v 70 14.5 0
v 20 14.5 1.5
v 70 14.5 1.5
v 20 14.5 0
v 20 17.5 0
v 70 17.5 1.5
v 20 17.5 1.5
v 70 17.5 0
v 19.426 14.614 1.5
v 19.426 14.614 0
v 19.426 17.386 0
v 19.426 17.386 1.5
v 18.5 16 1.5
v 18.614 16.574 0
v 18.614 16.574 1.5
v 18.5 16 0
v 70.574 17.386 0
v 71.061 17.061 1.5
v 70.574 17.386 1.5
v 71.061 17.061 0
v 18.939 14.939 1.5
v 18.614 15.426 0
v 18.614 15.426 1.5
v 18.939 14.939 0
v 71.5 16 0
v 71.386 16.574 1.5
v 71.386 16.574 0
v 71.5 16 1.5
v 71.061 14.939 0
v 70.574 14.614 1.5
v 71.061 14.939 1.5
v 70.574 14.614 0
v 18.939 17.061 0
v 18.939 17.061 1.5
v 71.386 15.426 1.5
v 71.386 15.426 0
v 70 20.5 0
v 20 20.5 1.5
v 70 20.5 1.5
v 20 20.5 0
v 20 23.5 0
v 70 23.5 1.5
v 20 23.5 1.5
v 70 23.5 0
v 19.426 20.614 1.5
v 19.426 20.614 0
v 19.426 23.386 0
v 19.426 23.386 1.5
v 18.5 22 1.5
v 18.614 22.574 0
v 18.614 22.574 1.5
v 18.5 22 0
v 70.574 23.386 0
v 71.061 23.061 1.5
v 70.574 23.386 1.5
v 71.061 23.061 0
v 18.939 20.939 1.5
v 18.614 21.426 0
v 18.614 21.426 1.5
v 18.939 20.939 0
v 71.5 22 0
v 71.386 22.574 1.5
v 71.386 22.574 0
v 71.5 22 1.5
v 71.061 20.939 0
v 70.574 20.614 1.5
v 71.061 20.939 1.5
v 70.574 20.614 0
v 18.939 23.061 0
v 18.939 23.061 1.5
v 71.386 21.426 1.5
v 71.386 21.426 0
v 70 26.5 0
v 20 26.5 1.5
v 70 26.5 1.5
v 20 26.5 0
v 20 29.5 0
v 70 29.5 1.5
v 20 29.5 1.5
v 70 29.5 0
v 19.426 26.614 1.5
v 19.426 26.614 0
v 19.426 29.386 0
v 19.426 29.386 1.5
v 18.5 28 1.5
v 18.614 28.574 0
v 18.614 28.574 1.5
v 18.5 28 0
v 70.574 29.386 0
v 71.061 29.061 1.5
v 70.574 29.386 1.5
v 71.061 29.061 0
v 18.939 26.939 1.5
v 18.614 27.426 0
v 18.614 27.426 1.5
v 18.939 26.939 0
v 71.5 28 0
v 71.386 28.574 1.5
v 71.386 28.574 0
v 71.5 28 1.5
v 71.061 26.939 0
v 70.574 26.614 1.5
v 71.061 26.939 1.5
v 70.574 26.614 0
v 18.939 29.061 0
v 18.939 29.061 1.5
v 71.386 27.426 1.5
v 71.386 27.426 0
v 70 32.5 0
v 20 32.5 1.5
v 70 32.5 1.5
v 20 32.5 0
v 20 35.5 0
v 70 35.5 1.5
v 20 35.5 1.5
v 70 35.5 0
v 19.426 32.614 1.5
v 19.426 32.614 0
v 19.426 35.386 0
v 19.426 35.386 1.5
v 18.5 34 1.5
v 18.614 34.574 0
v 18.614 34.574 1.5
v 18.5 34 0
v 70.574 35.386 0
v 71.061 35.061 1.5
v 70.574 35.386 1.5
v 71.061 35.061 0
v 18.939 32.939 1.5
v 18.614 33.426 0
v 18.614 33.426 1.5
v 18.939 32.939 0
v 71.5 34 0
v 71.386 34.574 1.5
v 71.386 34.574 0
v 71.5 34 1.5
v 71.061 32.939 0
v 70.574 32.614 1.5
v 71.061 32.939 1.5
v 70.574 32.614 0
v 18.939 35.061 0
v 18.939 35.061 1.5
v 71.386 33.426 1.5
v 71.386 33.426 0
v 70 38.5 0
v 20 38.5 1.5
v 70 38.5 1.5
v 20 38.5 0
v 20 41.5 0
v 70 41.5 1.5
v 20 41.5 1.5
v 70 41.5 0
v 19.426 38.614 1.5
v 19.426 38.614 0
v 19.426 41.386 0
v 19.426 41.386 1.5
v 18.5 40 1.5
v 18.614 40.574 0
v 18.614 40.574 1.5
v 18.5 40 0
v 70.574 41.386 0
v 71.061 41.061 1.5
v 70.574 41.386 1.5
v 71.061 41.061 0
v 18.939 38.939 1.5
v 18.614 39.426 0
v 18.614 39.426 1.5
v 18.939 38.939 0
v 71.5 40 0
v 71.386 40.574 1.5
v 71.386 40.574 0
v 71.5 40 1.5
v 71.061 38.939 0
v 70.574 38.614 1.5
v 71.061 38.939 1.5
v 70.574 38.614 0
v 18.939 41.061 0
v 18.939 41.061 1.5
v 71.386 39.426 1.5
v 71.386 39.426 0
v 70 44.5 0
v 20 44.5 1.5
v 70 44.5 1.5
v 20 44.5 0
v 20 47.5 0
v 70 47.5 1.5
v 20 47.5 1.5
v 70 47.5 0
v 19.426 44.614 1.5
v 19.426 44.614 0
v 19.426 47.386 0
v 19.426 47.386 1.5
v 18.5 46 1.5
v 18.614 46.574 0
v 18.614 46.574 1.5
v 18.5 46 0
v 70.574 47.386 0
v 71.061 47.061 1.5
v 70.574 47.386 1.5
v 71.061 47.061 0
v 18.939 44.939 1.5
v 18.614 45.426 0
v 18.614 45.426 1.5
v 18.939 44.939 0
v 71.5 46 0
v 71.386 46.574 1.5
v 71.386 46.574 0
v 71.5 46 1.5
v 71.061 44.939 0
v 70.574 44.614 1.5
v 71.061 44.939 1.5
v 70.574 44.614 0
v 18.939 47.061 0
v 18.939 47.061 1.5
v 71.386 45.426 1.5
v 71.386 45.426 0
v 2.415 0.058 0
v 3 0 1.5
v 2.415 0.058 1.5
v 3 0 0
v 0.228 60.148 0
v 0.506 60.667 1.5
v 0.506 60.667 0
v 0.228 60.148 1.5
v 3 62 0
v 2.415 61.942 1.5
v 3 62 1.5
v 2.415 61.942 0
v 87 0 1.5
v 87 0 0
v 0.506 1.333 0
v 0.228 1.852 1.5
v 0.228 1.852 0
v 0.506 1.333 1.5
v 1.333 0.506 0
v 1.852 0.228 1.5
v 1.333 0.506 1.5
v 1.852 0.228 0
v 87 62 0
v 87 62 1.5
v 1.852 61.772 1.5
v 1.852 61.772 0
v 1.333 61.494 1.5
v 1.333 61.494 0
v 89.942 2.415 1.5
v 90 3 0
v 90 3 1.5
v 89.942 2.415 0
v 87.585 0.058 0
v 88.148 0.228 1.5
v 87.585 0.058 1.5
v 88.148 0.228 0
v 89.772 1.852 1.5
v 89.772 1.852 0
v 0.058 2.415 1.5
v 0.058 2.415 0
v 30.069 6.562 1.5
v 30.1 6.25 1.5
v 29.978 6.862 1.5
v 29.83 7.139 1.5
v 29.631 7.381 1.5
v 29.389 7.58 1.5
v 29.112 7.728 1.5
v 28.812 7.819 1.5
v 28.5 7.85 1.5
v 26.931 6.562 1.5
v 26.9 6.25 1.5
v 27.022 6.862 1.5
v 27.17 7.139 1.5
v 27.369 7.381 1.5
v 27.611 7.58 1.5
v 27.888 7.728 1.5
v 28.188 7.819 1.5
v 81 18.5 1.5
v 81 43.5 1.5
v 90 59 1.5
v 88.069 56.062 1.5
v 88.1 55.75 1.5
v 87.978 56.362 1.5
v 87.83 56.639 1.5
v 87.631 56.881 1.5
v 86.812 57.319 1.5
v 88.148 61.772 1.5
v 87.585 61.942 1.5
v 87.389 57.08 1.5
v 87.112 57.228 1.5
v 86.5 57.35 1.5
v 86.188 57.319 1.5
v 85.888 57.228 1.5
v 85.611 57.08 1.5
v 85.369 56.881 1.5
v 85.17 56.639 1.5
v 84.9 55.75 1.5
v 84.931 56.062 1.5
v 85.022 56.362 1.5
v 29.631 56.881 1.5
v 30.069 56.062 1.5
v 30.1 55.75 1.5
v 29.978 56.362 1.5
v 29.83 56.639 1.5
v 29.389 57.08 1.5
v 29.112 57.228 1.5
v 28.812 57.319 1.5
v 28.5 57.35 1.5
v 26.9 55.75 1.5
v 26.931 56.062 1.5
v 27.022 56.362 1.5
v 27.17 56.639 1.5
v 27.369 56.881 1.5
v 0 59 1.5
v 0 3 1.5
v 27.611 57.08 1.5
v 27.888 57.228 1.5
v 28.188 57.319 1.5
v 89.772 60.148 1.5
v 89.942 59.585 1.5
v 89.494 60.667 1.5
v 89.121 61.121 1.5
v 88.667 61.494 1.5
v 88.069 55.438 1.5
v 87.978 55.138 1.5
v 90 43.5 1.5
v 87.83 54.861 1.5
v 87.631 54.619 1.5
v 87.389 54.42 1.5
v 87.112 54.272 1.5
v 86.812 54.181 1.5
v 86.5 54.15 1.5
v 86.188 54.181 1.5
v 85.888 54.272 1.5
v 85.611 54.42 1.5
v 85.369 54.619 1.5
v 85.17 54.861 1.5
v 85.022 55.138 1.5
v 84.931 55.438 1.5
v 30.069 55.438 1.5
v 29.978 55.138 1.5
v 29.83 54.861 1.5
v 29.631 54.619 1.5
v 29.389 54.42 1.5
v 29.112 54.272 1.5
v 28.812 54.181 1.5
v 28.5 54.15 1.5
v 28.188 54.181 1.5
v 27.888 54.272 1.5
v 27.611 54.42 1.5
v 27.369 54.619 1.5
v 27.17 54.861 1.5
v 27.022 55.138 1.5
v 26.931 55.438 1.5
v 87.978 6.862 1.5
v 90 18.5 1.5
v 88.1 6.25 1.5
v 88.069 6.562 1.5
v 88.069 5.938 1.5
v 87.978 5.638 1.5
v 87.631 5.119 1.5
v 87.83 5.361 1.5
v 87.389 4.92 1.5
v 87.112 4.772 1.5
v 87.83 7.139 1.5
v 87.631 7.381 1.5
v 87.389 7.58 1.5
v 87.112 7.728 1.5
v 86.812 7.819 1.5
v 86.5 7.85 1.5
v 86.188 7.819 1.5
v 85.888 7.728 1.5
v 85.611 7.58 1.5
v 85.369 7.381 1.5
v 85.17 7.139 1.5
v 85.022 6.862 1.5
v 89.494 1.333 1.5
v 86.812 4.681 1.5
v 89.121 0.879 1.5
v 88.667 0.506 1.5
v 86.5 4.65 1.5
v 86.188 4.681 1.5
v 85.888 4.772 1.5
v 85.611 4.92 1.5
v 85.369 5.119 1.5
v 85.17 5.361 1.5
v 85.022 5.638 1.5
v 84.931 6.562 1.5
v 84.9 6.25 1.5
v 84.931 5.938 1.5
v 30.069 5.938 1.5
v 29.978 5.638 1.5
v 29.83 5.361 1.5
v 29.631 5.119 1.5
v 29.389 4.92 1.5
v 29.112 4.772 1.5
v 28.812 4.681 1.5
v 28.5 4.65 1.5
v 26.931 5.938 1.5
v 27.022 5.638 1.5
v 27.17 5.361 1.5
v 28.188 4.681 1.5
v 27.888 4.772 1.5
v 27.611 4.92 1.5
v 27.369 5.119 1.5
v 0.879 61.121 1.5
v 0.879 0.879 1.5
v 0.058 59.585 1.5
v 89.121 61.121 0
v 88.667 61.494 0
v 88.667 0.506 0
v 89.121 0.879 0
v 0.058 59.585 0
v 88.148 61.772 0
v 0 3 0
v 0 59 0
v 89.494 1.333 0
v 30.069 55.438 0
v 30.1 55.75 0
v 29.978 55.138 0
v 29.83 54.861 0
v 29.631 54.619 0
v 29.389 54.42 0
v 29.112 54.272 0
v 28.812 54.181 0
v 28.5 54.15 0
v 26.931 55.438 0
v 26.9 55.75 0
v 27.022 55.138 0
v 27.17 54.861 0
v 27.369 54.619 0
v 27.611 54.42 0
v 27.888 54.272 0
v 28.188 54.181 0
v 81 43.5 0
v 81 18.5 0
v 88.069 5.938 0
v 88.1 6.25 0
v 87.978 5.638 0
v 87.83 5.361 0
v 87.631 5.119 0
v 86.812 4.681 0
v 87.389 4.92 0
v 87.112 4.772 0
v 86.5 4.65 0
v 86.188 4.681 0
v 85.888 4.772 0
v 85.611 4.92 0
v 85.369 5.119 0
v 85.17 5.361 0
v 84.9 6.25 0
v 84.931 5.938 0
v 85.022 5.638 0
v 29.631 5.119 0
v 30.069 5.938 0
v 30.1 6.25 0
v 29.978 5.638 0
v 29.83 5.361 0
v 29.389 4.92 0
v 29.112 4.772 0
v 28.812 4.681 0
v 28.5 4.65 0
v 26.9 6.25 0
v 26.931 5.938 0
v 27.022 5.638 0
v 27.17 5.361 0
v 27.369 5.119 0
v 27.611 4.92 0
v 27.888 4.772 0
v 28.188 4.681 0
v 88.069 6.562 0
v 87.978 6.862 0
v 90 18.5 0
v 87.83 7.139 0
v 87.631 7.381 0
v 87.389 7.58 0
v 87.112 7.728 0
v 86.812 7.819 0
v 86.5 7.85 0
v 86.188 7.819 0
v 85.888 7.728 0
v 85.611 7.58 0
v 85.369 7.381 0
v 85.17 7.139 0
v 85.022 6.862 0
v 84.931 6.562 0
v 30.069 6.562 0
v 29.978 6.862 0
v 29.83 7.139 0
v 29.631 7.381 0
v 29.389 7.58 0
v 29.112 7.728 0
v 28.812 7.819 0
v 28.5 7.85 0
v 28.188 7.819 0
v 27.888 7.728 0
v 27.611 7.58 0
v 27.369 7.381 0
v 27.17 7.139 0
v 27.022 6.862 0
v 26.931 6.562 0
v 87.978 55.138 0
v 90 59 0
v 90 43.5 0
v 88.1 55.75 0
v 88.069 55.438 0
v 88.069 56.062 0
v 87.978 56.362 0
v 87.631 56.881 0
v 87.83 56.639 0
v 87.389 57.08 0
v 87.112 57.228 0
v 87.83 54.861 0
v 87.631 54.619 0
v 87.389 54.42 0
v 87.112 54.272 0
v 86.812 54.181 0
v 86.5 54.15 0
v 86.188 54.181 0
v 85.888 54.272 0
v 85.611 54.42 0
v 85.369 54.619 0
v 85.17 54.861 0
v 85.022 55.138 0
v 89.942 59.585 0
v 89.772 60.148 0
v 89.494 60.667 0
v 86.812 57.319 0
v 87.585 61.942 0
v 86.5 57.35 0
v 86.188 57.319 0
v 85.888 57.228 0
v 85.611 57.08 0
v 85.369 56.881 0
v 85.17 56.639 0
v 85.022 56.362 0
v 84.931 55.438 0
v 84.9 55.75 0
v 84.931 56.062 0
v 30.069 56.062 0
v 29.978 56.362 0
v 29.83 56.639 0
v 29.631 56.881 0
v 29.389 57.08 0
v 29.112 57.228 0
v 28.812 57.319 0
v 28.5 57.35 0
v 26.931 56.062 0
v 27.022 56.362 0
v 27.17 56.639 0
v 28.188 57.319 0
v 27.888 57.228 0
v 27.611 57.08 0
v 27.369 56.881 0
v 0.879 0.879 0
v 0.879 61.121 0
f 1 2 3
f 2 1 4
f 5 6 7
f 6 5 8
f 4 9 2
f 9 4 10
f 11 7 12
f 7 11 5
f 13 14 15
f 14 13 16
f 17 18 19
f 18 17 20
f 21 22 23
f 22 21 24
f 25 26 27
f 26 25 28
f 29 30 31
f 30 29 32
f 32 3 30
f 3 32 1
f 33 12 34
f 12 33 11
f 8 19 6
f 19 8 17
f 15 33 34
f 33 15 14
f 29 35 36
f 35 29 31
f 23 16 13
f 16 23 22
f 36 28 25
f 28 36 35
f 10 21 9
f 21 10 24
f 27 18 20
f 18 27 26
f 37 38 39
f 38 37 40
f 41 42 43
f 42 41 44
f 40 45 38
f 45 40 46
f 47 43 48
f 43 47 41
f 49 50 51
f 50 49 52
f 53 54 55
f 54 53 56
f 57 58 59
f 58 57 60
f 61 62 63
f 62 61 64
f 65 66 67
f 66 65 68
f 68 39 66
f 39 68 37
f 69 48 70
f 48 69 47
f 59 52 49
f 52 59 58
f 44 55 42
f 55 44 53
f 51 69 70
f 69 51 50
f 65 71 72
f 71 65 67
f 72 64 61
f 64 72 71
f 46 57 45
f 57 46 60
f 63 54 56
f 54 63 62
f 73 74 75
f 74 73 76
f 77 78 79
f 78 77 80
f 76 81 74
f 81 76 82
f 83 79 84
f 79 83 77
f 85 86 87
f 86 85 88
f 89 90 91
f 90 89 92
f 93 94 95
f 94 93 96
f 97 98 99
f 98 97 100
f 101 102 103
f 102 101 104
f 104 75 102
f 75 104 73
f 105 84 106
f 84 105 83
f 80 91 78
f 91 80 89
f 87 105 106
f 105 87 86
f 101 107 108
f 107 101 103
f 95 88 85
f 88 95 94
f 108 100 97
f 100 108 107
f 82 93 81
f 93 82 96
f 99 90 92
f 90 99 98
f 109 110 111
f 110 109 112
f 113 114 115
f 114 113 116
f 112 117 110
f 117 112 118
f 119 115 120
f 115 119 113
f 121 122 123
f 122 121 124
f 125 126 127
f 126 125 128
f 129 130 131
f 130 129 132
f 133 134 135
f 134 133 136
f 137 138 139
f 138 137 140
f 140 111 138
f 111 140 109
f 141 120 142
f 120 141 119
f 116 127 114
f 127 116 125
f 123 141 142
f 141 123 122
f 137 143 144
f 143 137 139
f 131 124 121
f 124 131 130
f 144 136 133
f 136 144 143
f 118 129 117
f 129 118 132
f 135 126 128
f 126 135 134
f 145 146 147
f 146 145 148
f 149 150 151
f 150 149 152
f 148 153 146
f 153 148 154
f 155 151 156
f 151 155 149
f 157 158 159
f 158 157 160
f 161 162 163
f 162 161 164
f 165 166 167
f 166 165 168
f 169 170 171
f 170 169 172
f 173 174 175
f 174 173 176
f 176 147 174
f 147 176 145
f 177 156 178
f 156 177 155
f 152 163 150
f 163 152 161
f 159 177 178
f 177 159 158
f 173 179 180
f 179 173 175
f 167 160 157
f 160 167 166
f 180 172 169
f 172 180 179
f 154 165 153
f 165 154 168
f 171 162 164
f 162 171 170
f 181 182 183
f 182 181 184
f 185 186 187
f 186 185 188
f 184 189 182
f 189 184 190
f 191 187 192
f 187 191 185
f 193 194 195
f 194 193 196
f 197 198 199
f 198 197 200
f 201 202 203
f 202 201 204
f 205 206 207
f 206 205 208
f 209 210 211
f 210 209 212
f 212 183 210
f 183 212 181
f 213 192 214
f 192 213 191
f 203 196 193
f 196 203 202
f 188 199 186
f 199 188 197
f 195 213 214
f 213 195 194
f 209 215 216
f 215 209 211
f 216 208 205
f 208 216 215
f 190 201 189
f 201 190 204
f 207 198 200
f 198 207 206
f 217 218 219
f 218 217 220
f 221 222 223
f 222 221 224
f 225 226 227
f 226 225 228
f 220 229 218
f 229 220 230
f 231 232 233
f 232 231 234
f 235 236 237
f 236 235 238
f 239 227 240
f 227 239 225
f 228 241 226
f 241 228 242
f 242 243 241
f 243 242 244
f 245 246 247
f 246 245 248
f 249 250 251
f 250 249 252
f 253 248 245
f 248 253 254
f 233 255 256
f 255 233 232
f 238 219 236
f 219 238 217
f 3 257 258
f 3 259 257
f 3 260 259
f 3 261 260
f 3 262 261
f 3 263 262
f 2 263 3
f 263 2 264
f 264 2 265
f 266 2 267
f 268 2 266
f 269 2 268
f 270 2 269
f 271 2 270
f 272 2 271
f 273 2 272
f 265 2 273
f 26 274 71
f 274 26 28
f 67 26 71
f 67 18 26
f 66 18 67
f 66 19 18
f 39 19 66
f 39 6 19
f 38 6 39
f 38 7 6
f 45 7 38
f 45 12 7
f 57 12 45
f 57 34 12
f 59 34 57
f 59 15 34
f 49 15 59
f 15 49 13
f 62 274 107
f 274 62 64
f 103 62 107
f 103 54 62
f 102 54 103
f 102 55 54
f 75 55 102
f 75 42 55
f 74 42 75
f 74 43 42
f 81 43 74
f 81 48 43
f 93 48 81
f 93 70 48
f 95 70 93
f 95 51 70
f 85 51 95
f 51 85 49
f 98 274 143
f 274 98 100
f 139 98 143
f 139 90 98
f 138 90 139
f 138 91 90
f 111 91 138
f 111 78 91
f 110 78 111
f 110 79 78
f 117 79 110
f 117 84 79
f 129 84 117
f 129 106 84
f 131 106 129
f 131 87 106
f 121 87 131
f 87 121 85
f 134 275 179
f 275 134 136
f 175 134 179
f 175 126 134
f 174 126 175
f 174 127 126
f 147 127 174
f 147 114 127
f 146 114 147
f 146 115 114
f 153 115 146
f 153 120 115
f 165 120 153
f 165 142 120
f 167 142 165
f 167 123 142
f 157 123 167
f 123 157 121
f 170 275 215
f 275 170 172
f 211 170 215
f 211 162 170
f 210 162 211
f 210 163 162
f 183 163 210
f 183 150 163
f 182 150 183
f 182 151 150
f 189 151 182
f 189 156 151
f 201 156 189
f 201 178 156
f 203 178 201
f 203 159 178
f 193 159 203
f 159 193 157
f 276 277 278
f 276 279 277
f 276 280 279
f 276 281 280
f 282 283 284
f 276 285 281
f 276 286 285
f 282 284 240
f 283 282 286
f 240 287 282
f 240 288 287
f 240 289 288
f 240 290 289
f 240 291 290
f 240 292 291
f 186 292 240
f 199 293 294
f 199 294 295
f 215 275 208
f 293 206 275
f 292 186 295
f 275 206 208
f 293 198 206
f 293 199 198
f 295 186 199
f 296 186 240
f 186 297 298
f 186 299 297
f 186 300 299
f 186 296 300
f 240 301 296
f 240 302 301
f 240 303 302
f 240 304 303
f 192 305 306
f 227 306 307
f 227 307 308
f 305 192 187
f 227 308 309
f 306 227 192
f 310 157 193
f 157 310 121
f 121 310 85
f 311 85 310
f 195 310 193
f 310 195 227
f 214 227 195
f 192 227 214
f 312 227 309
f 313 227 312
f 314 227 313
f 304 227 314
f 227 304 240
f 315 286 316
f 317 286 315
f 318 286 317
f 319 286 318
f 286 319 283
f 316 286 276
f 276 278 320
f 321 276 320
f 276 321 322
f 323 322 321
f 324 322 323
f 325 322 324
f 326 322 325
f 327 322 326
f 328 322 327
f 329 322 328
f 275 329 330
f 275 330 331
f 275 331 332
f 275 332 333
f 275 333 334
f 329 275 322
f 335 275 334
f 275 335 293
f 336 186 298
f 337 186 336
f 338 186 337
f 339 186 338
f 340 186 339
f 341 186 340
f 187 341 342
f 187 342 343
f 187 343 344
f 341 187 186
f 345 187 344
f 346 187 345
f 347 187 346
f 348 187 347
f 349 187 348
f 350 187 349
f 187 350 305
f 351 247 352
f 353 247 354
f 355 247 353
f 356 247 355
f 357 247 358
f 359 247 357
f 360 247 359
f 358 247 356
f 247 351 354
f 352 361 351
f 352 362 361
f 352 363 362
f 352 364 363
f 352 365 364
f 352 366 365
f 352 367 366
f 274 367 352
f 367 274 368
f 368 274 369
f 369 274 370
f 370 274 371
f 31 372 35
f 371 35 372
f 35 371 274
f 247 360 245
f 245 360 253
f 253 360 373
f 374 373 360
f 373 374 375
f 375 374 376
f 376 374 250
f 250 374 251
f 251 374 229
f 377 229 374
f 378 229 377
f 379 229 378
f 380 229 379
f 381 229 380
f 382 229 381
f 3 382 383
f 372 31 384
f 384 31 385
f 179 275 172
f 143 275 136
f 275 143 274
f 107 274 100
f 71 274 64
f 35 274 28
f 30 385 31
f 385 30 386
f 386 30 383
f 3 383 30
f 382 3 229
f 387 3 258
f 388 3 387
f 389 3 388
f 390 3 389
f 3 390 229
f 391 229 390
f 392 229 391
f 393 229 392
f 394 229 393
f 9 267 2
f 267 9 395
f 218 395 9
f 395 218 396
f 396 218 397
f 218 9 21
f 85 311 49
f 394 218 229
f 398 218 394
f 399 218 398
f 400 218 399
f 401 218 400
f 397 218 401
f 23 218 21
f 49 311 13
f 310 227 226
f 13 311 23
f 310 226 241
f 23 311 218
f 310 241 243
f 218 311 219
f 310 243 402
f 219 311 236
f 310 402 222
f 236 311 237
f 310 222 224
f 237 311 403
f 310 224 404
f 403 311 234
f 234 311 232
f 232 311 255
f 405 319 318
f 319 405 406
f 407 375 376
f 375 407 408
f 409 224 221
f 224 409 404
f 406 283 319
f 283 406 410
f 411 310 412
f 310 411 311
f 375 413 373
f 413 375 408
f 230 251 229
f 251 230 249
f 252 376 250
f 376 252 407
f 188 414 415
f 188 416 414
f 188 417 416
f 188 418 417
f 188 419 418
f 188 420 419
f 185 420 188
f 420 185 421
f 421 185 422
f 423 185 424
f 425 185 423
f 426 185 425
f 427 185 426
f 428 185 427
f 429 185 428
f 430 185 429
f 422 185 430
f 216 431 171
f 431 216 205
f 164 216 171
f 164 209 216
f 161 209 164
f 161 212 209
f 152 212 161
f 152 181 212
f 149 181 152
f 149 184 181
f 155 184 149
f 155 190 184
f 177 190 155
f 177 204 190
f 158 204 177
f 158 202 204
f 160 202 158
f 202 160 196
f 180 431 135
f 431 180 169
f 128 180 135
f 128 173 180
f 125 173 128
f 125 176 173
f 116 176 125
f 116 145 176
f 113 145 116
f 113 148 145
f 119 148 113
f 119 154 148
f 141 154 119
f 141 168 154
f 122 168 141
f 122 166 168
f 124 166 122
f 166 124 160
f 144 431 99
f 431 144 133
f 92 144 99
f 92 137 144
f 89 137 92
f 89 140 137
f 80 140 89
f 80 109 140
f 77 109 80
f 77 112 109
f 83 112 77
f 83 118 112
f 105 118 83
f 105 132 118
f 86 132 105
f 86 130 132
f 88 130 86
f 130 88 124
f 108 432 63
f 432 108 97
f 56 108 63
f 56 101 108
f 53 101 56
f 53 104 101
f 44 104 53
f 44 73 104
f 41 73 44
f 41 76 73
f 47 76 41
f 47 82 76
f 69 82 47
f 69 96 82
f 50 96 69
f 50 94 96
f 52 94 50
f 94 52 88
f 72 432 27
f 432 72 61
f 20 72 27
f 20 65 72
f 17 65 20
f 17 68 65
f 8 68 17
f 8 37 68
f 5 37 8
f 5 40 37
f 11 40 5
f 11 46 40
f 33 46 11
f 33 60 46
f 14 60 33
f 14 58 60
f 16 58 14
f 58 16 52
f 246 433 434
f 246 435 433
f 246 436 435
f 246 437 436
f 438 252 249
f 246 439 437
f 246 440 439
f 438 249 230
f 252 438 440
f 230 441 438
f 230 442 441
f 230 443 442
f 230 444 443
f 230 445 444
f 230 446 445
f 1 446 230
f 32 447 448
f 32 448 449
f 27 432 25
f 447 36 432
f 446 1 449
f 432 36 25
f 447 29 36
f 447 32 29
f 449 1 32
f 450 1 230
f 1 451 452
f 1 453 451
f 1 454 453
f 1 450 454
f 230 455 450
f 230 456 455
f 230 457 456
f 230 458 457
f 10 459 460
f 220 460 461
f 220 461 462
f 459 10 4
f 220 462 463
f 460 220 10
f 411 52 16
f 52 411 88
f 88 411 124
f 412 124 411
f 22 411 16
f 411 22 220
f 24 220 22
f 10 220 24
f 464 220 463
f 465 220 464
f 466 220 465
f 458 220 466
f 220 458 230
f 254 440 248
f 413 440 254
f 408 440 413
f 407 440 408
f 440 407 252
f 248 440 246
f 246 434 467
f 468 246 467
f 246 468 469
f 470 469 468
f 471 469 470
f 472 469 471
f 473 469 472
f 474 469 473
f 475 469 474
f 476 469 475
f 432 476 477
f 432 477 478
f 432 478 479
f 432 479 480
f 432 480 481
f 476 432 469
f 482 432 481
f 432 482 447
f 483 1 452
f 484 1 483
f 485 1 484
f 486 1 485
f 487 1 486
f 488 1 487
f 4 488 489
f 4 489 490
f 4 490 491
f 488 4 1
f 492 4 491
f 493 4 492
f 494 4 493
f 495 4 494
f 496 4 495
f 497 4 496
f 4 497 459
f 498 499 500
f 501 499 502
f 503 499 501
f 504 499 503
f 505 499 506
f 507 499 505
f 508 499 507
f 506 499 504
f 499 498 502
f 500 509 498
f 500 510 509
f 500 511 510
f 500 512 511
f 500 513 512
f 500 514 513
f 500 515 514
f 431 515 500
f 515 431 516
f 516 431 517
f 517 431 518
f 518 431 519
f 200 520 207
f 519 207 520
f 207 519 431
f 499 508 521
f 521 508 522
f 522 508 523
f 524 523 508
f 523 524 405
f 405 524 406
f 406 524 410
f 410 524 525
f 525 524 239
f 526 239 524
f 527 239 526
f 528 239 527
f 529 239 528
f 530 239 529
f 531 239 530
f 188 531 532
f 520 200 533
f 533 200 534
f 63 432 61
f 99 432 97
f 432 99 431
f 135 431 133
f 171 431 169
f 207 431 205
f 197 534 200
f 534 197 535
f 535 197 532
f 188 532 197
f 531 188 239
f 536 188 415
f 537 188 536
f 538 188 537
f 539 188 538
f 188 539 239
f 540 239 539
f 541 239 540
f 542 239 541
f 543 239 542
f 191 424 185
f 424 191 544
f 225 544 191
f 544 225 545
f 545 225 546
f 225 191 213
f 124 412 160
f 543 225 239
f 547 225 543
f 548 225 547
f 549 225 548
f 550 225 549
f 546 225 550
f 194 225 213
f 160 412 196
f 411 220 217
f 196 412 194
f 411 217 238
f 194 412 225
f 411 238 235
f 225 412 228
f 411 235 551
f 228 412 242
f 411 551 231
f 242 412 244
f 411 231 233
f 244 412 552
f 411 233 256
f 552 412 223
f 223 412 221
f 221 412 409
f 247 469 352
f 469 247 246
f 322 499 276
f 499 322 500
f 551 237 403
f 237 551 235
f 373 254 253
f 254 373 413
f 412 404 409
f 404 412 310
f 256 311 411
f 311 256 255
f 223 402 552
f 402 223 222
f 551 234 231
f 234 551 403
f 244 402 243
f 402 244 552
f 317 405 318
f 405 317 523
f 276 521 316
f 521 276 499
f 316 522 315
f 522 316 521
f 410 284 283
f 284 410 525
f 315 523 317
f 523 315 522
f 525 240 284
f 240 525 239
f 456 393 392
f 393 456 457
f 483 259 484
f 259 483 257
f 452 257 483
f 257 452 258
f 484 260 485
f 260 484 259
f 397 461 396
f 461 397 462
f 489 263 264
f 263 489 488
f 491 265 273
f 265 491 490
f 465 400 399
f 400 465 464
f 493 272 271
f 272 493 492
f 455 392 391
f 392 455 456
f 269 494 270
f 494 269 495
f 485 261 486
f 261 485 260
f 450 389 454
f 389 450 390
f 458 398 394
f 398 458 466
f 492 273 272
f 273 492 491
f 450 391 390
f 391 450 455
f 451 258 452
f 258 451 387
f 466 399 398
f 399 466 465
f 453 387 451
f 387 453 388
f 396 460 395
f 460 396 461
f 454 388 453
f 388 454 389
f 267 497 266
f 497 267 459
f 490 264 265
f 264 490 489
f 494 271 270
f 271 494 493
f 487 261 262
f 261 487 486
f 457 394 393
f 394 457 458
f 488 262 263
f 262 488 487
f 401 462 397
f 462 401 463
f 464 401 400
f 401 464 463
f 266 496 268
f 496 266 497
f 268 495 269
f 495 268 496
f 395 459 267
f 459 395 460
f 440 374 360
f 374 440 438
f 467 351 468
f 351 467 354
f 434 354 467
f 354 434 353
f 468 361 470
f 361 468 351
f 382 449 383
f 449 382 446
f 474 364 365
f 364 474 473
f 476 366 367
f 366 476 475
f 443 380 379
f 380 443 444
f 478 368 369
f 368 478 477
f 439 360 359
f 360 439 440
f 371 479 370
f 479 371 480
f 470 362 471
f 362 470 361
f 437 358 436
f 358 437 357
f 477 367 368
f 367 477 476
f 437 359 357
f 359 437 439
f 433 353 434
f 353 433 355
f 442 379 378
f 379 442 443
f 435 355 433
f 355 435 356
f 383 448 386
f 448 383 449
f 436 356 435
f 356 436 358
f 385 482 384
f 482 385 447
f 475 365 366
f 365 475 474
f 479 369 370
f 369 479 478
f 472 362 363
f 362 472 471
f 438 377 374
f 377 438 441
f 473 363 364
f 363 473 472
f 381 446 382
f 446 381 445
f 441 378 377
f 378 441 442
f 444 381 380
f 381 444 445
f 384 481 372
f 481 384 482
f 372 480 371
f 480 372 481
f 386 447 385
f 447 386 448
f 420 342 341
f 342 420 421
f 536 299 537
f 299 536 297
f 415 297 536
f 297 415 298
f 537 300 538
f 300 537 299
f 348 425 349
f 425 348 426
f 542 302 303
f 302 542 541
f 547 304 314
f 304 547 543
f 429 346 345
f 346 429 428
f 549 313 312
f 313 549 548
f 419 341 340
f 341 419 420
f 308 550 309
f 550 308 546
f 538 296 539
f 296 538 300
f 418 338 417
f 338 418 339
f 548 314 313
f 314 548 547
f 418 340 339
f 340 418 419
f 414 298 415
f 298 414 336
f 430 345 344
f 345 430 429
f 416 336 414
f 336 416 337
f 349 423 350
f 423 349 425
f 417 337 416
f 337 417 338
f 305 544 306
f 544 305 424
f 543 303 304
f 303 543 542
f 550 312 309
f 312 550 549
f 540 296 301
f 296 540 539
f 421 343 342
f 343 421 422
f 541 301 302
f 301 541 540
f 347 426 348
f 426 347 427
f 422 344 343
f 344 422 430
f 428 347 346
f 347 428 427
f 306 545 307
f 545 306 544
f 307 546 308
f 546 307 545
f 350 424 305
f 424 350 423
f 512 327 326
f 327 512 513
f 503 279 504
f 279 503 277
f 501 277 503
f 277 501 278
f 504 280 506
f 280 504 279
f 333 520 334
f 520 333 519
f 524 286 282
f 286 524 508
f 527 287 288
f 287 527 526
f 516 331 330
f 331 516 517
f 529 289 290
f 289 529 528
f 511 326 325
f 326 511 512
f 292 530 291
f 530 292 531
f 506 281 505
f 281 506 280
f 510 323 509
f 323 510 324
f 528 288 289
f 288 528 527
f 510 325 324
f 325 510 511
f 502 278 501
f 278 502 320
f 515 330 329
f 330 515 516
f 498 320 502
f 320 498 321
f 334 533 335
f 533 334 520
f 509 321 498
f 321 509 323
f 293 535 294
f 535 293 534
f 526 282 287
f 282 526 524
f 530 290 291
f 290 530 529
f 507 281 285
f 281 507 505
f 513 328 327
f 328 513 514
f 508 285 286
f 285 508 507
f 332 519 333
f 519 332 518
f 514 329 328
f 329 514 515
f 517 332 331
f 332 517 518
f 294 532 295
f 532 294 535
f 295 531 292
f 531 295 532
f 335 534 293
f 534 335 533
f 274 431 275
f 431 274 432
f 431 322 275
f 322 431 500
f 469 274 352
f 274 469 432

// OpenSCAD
// RPi Gardener HAT Base
// Flat base with M3 holes for RPi 4 and HAT mounting with spacers
// Export to STL: OpenSCAD -> File -> Export -> STL

/* [Base Dimensions] */
// Base sized to support full Raspberry Pi 4 (85mm x 56mm)
base_width = 90;          // mm - slightly larger than Pi for margin
base_depth = 62;          // mm - slightly larger than Pi for margin
base_thickness = 1.5;     // mm
corner_radius = 3;        // mm

/* [Mounting Holes] */
// Standard RPi 4 mounting pattern: 58mm x 49.5mm
// Holes are 3.5mm from board edges on the Pi
// Same holes work for both RPi and HAT (they align)
hole_spacing_x = 58;      // mm between holes horizontally
hole_spacing_y = 49.5;    // mm between holes vertically
hole_diameter = 3.2;      // mm - M3 clearance hole
// Match PCB hole positions from the right edge
hole_offset_x = base_width - hole_spacing_x - 3.5;  // mm from left (3.5mm from right edge)
hole_offset_y = (base_depth - hole_spacing_y) / 2;  // centered vertically

/* [Ventilation] */
vent_slots = true;        // Add ventilation slots
vent_width = 3;           // mm
vent_length = 50;         // mm - longer to match wider base
vent_count = 6;           // more slots for better cooling

/* [Cable Cutout] */
usb_cutout = true;        // Cutout for USB/power cables
usb_cutout_width = 25;    // mm
usb_cutout_depth = 10;    // mm

// Modules
module rounded_rect(w, d, h, r) {
    hull() {
        translate([r, r, 0]) cylinder(h=h, r=r, $fn=32);
        translate([w-r, r, 0]) cylinder(h=h, r=r, $fn=32);
        translate([r, d-r, 0]) cylinder(h=h, r=r, $fn=32);
        translate([w-r, d-r, 0]) cylinder(h=h, r=r, $fn=32);
    }
}

module vent_slot(length, width) {
    hull() {
        translate([0, 0, 0]) cylinder(h=base_thickness+0.2, d=width, $fn=16);
        translate([length, 0, 0]) cylinder(h=base_thickness+0.2, d=width, $fn=16);
    }
}

// Main assembly
module base() {
    difference() {
        // Base plate
        rounded_rect(base_width, base_depth, base_thickness, corner_radius);

        // Mounting holes (M3) - same positions for RPi and HAT
        // Hole 1 (H1 position)
        translate([hole_offset_x, hole_offset_y, -0.1])
            cylinder(h=base_thickness+0.2, d=hole_diameter, $fn=32);

        // Hole 2 (H2 position)
        translate([hole_offset_x + hole_spacing_x, hole_offset_y, -0.1])
            cylinder(h=base_thickness+0.2, d=hole_diameter, $fn=32);

        // Hole 3 (H3 position)
        translate([hole_offset_x, hole_offset_y + hole_spacing_y, -0.1])
            cylinder(h=base_thickness+0.2, d=hole_diameter, $fn=32);

        // Hole 4 (H4 position)
        translate([hole_offset_x + hole_spacing_x, hole_offset_y + hole_spacing_y, -0.1])
            cylinder(h=base_thickness+0.2, d=hole_diameter, $fn=32);

        // Ventilation slots
        if (vent_slots) {
            slot_start_x = (base_width - vent_length) / 2;
            slot_spacing = (base_depth - 20) / (vent_count + 1);
            for (i = [1:vent_count]) {
                translate([slot_start_x, 10 + i * slot_spacing, -0.1])
                    vent_slot(vent_length, vent_width);
            }
        }

        // USB/Power cable cutout
        if (usb_cutout) {
            translate([base_width - usb_cutout_depth + 1, (base_depth - usb_cutout_width) / 2, -0.1])
                cube([usb_cutout_depth + 1, usb_cutout_width, base_thickness + 0.2]);
        }
    }
}

// Render the base
base();

// Info
echo("=== RPi Gardener HAT Base ===");
echo(str("Base size: ", base_width, "mm x ", base_depth, "mm x ", base_thickness, "mm"));
echo(str("Supports: Raspberry Pi 4 (85mm x 56mm)"));
echo(str("Hole pattern: ", hole_spacing_x, "mm x ", hole_spacing_y, "mm (matches PCB)"));
echo(str("Hole positions: (", hole_offset_x, ",", hole_offset_y, ") to (", hole_offset_x+hole_spacing_x, ",", hole_offset_y+hole_spacing_y, ")"));
echo(str("Hole diameter: ", hole_diameter, "mm (M3 clearance)"));
echo("");
echo("Assembly with spacers:");
echo("1. Insert M3 screws from bottom through base holes");
echo("2. Add spacer (e.g. 5-6mm) for RPi clearance");
echo("3. Mount Raspberry Pi 4 (center on base)");
echo("4. Add spacer (e.g. 10-12mm) for HAT clearance");
echo("5. Mount HAT");
echo("6. Secure with M3 nuts on top");
